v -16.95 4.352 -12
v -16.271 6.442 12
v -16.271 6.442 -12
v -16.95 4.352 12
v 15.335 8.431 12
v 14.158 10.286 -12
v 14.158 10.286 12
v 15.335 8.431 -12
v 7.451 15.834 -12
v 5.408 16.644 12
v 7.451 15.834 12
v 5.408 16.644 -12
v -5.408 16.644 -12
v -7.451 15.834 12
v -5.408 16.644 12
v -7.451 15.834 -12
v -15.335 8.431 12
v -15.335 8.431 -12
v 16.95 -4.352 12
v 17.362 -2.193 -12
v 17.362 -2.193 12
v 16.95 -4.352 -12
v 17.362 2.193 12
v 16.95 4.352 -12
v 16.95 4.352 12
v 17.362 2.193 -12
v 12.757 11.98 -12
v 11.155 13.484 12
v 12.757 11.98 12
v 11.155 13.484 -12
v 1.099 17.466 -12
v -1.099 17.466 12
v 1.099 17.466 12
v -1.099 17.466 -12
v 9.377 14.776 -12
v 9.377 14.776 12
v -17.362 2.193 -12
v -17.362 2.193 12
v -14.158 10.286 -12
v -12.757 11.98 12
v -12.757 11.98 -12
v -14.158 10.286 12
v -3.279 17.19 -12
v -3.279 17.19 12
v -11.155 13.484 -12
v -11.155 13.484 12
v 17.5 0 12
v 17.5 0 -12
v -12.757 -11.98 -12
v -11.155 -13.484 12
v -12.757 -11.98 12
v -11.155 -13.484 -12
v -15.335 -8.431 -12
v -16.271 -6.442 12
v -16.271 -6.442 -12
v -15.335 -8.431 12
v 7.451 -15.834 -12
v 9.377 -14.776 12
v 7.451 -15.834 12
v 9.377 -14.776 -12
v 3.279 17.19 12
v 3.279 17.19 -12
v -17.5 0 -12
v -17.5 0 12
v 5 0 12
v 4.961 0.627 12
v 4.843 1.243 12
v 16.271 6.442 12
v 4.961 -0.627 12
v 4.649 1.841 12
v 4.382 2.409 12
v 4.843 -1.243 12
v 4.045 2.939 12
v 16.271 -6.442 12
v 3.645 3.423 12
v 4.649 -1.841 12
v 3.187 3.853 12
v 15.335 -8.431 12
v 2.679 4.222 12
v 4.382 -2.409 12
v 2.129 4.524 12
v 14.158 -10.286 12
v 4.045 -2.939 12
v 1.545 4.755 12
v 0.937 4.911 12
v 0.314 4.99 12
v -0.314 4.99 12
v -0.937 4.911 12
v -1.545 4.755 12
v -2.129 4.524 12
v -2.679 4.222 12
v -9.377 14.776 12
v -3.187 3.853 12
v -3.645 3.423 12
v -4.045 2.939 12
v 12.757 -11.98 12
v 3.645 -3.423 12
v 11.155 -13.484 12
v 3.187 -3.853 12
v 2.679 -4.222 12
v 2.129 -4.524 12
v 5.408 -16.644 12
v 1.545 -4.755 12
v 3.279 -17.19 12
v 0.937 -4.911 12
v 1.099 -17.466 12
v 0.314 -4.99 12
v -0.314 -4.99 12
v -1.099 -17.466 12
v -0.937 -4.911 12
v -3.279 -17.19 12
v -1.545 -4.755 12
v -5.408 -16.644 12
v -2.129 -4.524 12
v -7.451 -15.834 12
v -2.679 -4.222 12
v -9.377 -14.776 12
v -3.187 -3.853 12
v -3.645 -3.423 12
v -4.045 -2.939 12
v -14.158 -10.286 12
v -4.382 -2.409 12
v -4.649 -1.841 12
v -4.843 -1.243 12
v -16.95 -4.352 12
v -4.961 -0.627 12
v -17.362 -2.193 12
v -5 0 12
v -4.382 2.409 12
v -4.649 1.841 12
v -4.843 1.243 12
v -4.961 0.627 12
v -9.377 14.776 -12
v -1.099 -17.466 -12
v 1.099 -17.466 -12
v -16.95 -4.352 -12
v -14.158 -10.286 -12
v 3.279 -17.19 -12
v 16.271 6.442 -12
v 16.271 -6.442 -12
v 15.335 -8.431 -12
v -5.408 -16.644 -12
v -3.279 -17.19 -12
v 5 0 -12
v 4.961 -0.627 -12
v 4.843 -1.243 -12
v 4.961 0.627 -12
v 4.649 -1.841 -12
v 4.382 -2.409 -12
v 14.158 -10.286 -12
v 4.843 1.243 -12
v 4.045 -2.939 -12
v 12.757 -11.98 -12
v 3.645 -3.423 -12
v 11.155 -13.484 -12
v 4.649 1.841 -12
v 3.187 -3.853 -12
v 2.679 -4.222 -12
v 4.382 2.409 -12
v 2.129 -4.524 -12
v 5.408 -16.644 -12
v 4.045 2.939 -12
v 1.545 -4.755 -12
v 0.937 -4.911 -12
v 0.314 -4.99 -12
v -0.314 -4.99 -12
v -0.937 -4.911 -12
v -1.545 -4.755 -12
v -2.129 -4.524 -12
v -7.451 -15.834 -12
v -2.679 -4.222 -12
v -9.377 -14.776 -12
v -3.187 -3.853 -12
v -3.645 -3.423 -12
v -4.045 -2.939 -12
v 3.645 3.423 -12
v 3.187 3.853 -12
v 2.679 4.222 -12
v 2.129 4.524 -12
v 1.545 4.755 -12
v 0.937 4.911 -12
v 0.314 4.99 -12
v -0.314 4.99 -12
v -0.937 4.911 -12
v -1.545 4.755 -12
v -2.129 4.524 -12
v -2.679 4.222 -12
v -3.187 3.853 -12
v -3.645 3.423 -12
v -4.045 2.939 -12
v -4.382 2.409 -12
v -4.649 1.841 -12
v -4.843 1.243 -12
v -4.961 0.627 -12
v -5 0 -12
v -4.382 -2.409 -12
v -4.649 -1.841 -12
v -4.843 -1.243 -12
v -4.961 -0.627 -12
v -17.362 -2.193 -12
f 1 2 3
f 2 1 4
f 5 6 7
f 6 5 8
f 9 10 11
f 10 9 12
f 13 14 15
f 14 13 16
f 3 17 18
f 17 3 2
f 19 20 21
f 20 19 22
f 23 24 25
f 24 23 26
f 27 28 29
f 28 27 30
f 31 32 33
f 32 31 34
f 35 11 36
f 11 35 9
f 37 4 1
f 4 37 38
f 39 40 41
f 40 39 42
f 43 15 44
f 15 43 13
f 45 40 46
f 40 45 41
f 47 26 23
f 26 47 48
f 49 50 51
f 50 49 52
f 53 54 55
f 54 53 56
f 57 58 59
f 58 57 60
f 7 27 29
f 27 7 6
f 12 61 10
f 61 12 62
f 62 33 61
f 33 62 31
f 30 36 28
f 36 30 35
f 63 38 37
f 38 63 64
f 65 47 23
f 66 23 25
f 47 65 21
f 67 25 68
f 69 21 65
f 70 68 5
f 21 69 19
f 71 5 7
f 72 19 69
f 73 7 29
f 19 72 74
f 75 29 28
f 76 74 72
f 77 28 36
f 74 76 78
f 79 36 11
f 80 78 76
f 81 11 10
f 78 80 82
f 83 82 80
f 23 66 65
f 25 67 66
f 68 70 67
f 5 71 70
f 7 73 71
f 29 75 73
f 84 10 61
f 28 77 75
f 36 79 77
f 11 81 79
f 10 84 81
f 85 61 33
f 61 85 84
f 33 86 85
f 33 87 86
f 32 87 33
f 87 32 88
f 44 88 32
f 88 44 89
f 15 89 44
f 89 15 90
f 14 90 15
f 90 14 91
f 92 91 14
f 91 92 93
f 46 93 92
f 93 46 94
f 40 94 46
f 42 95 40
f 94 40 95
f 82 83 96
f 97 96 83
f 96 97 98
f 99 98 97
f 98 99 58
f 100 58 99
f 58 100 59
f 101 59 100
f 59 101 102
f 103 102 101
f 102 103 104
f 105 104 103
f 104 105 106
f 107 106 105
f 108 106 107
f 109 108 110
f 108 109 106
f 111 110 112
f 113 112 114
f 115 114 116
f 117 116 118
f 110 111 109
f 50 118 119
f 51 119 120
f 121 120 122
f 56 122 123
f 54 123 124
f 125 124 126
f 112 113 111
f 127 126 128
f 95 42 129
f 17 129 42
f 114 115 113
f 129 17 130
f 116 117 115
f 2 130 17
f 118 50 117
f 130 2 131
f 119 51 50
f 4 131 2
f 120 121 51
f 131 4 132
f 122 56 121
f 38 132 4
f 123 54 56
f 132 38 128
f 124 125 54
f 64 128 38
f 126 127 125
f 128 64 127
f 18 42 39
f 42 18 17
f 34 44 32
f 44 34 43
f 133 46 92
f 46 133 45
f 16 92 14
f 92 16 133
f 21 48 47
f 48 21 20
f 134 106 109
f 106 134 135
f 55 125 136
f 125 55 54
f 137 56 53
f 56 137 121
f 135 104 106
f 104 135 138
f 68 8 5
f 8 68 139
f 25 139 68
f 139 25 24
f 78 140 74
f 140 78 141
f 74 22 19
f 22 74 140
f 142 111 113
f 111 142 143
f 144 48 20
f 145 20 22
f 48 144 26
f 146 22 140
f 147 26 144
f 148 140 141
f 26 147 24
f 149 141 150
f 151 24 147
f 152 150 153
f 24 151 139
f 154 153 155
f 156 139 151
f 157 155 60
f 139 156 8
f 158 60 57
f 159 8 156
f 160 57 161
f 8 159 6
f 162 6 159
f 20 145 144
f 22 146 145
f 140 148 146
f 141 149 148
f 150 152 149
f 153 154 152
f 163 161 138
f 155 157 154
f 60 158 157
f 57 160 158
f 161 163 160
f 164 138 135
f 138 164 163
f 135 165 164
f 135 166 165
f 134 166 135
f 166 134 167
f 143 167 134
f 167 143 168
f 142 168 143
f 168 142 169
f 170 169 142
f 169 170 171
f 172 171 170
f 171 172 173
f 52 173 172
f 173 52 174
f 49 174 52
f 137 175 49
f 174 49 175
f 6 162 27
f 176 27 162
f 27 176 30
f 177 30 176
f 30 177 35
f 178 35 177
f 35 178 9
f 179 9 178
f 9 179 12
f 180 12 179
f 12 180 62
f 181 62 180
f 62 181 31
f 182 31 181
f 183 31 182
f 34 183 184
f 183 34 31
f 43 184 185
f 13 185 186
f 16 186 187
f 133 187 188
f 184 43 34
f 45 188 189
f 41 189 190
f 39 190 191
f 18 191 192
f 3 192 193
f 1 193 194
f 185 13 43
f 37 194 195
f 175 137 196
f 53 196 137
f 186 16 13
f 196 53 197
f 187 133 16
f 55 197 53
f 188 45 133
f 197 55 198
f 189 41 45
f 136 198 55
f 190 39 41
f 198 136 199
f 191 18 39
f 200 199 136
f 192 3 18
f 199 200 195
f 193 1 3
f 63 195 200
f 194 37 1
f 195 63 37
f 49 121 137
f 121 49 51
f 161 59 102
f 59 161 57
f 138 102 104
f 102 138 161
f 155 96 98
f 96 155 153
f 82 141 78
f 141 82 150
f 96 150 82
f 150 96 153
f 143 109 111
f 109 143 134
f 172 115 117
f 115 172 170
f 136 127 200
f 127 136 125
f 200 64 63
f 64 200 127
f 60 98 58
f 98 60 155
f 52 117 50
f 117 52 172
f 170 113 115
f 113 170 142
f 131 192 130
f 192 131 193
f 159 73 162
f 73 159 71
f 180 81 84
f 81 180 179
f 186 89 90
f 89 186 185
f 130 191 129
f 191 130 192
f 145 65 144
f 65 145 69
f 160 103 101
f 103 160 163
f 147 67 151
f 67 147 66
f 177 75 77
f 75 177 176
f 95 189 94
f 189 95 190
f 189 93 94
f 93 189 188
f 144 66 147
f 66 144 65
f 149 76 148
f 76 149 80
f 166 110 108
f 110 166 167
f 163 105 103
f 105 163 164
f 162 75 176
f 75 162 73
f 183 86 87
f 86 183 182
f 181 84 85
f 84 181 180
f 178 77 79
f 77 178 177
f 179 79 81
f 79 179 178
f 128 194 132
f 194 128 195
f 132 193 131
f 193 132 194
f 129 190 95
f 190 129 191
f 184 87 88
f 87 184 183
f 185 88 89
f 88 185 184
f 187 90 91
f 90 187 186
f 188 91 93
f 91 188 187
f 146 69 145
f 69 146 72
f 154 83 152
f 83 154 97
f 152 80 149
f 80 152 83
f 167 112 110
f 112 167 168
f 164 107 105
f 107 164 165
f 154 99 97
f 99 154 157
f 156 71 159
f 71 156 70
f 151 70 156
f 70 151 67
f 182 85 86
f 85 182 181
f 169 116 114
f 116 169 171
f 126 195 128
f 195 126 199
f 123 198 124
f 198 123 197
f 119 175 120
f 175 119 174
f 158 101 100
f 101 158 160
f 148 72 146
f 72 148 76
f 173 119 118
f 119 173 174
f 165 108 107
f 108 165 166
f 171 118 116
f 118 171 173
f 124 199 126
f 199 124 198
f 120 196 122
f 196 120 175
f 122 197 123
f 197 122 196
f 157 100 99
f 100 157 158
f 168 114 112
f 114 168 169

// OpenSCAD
$fn = 50;


difference() {
	union() {
		translate(v = [0, 0, -12.0000000000]) {
			cylinder(h = 24, r = 17.5000000000);
		}
	}
	union() {
		translate(v = [0, 0, -100.0000000000]) {
			cylinder(h = 200, r = 5);
		}
	}
}
